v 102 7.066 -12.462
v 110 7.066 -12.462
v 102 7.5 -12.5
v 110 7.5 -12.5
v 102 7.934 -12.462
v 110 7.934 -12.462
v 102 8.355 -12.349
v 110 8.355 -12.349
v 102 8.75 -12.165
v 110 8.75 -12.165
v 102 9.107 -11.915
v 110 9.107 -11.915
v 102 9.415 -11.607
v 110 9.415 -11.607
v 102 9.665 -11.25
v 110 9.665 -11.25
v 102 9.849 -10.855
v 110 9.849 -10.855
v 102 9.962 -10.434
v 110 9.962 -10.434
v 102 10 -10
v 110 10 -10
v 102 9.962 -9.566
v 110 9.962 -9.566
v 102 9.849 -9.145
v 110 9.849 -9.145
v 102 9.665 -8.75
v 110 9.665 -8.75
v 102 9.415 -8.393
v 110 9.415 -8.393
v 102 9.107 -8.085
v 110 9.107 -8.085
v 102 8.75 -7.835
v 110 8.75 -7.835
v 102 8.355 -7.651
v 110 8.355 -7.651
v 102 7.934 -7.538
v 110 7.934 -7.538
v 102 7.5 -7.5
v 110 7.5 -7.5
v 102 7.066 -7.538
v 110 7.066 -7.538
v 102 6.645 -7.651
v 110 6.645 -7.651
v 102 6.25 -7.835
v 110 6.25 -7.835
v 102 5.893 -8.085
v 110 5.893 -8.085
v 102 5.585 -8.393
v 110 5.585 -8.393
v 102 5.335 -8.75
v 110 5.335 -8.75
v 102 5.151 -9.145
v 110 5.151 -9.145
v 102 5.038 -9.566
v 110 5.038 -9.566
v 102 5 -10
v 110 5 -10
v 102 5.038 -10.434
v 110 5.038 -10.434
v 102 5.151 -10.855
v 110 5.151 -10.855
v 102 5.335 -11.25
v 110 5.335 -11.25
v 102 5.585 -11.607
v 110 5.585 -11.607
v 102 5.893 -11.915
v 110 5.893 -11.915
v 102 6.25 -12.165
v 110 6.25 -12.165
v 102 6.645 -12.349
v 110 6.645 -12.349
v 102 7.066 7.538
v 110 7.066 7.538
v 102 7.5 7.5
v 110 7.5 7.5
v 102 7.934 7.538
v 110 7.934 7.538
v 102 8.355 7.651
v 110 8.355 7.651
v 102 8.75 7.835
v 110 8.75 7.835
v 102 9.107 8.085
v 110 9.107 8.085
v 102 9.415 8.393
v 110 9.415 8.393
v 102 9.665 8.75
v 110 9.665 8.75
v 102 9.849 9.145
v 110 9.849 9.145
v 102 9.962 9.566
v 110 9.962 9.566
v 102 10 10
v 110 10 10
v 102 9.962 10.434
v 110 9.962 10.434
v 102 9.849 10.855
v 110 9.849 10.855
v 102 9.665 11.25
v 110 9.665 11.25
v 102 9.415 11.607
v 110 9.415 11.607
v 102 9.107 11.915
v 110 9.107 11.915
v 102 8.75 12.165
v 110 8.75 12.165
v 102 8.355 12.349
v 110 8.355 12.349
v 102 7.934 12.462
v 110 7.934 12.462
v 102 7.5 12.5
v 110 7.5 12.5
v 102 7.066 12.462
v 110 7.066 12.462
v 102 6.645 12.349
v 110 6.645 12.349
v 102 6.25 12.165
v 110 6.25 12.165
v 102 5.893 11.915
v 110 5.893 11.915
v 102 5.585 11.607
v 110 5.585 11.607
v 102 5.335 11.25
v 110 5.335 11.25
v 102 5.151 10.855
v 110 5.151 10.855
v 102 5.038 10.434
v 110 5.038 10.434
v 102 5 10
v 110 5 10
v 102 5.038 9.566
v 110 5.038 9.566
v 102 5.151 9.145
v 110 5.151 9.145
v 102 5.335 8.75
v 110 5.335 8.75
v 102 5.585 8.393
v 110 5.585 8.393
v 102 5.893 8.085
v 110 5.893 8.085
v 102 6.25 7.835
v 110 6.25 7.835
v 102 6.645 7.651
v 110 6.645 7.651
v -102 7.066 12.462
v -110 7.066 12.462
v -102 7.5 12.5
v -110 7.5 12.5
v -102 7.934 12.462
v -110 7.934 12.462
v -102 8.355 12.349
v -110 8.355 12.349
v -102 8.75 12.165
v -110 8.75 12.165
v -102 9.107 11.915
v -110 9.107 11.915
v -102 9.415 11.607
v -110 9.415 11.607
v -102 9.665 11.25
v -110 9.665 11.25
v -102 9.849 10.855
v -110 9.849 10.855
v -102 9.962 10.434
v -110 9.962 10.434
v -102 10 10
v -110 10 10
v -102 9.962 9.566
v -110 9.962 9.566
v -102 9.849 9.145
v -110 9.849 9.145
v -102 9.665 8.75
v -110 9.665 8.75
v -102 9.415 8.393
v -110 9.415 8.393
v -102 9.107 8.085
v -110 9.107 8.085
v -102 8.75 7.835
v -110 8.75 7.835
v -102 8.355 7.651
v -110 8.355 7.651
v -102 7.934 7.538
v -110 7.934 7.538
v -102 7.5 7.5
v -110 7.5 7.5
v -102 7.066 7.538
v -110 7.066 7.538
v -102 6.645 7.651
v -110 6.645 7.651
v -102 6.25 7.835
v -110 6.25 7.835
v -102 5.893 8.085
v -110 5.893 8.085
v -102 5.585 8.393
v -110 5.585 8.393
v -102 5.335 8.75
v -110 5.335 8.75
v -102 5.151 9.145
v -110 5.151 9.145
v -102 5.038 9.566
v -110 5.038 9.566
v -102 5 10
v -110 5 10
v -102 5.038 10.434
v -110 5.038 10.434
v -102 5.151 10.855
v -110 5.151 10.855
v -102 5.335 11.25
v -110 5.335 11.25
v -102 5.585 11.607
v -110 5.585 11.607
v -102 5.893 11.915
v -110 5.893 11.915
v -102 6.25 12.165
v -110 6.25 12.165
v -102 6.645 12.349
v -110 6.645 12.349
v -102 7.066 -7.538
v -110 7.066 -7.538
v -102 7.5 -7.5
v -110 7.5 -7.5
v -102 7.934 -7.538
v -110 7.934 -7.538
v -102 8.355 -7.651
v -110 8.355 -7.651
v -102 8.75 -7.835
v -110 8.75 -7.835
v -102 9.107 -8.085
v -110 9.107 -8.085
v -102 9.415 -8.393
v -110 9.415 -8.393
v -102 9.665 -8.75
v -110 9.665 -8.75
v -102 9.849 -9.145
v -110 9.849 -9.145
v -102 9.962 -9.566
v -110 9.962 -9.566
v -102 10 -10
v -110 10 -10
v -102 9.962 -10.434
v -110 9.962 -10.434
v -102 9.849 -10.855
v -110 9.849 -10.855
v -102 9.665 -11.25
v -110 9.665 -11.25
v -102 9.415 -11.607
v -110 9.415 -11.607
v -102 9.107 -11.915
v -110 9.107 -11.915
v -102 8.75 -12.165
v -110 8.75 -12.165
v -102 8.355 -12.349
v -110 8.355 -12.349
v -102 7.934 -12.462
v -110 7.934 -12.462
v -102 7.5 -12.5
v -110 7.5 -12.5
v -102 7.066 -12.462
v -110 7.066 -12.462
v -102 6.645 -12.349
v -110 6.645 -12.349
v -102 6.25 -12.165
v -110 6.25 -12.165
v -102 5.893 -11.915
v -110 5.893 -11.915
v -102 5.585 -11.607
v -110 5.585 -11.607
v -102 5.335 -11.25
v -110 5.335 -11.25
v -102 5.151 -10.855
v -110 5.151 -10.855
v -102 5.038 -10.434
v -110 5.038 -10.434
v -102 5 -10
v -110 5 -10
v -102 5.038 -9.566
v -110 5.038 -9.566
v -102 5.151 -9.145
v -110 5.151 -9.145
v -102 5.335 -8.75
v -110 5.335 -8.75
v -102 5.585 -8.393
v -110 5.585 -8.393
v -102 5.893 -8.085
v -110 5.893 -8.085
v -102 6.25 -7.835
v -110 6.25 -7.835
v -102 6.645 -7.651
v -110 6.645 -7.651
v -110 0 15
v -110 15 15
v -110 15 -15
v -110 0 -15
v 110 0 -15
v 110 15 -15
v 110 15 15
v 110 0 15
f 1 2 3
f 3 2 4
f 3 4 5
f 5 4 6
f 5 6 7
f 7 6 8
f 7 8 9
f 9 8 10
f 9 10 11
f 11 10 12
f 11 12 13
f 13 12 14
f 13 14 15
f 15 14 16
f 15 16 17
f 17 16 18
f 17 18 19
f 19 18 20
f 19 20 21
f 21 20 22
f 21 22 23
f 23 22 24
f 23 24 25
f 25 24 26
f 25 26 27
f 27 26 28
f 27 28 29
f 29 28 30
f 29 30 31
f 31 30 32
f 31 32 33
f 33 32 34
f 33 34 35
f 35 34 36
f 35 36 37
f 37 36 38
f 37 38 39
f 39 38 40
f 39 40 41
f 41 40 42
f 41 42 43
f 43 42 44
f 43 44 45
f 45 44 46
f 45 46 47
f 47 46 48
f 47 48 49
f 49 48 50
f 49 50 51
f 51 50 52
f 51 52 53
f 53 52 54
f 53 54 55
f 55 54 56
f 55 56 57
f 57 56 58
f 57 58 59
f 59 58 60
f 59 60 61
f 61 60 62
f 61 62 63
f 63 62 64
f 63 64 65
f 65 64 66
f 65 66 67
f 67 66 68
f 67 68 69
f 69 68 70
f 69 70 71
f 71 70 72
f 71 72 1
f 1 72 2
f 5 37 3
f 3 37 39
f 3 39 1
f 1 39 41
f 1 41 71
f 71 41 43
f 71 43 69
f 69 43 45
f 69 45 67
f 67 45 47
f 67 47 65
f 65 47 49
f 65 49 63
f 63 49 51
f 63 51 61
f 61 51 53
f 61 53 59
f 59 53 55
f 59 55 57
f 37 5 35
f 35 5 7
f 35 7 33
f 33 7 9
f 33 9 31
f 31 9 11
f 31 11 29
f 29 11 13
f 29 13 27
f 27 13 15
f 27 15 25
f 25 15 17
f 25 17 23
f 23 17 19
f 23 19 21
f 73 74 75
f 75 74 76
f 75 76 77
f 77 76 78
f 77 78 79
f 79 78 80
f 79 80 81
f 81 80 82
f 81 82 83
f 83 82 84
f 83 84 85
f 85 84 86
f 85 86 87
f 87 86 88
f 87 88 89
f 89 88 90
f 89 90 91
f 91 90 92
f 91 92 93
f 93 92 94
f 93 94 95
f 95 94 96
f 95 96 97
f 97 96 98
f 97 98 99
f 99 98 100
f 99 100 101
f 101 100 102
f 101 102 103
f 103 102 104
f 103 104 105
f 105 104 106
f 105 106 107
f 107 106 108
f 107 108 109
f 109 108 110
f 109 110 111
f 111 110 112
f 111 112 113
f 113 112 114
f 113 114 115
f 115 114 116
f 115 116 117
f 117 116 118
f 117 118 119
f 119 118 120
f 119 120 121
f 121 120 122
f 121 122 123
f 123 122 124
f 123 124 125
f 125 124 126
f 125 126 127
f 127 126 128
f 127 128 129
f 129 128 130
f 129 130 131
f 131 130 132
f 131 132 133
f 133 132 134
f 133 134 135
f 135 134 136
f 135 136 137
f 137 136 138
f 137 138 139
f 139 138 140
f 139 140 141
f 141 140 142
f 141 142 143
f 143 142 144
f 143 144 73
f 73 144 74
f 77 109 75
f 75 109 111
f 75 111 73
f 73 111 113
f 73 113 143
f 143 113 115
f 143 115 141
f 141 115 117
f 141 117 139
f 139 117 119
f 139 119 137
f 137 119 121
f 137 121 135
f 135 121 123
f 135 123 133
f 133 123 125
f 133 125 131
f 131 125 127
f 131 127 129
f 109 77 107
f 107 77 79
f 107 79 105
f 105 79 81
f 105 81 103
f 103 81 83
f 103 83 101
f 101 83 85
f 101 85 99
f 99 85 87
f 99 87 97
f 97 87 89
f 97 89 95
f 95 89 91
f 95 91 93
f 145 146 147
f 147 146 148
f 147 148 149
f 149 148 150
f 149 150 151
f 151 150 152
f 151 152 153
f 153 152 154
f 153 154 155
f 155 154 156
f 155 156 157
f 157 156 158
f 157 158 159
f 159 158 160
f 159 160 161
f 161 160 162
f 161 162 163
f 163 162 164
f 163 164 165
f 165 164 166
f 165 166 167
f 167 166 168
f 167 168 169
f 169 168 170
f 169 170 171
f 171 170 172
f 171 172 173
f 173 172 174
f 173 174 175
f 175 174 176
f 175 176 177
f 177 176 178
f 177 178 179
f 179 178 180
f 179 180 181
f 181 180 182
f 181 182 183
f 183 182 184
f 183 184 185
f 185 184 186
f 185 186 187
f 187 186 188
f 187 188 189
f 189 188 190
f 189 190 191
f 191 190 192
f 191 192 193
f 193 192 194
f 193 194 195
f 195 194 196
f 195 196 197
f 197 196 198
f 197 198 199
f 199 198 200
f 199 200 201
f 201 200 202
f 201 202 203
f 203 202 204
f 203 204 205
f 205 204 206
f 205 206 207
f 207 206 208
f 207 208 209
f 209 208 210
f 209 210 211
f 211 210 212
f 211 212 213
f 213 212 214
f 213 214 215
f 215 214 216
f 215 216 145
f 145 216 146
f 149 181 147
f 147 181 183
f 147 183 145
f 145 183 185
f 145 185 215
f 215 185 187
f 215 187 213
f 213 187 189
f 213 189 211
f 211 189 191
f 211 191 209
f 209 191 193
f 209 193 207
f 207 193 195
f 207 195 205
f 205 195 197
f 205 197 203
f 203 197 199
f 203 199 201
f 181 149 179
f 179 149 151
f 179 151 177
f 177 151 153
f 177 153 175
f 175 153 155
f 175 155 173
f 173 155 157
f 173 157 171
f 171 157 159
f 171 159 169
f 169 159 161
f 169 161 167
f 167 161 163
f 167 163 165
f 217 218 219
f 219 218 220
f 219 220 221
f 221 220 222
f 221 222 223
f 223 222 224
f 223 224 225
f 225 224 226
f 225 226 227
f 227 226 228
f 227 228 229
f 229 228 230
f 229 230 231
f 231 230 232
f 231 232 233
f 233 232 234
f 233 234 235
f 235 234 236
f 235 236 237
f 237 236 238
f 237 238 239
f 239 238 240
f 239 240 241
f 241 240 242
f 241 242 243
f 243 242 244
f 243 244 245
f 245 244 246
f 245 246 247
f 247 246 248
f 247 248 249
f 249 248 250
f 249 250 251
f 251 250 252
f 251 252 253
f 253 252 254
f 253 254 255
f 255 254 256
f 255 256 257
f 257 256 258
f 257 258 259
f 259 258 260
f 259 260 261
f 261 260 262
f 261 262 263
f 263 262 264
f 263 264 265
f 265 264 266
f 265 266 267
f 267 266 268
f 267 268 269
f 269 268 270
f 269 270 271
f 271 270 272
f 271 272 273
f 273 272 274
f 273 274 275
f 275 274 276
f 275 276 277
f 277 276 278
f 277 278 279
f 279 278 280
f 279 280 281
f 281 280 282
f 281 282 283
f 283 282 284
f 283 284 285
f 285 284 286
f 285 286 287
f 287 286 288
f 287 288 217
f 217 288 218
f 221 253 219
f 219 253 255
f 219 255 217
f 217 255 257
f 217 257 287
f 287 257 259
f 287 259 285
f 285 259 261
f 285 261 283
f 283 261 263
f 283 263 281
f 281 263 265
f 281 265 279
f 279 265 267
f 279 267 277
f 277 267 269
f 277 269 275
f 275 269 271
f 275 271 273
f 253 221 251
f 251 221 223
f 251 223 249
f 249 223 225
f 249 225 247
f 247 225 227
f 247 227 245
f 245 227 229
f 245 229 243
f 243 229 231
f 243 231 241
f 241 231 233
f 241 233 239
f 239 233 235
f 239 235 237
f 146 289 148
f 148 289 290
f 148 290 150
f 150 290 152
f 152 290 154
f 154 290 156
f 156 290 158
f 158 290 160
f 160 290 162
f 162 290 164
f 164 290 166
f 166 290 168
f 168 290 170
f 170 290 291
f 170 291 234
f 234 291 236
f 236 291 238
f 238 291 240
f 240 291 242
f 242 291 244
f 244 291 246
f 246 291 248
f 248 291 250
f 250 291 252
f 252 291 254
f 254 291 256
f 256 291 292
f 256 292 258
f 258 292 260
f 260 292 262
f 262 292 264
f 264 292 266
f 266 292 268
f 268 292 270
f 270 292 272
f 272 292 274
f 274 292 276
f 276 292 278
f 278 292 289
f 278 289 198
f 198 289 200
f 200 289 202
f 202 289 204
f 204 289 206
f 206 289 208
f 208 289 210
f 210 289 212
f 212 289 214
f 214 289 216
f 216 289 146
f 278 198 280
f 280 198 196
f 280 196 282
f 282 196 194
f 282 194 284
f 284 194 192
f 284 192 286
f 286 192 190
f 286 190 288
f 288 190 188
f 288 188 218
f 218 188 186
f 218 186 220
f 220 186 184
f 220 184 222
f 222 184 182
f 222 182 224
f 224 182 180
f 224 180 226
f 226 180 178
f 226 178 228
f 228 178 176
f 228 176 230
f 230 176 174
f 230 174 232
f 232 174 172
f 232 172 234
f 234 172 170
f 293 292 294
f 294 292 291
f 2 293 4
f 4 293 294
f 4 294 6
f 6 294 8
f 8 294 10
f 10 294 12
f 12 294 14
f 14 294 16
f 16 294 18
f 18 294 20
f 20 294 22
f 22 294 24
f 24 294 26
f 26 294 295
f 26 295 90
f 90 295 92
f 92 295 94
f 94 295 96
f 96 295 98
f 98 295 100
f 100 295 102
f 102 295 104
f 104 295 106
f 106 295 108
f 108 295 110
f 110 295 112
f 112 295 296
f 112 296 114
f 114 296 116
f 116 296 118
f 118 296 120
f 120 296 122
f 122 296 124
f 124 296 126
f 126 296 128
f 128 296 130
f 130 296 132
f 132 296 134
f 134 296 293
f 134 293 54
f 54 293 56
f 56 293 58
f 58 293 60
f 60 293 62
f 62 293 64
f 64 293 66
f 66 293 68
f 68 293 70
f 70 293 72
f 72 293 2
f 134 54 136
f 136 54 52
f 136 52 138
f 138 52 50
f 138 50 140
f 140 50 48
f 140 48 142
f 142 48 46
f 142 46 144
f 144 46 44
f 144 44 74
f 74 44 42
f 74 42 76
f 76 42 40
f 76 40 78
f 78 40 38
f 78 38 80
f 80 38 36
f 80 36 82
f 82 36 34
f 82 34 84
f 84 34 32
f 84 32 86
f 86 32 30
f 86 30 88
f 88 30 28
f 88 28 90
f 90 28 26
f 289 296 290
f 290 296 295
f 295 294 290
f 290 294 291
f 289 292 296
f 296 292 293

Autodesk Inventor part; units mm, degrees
ref_plane "YZ Plane" through (0, 0, 0) normal (1, 0, 0) x (0, 1, 0)
ref_plane "XZ Plane" through (0, 0, 0) normal (0, 1, 0) x (-1, 0, 0)
ref_plane "XY Plane" through (0, 0, 0) normal (0, 0, 1) x (1, 0, 0)
sketch "Sketch1" plane through (0, 0, 0) normal (0, 1, 0) x (-1, 0, 0)
  line L0 (110, -15) -> (-110, -15)
  line L1 (-110, -15) -> (-110, 15)
  line L2 (-110, 15) -> (110, 15)
  line L3 (110, 15) -> (110, -15)
  line L4 (110, 0) -> (-110, 0) construction
  line L5 (0, -15) -> (0, 15) construction
  point P0 (0, 0)
  point P1 (0, 0)
  dimension "d0" = 220
  dimension "d1" = 30
extrude "Extrusion1" add sketch "Sketch1" along normal blind 15
sketch "Sketch2" plane through (-110, 0, -15) normal (-1, 0, 0) x (0, 0, 1)
  circle A0 centre (5, 7.5) radius 2.5
  line L0 (0, 0) -> (0, 15) construction
  line L1 (0, 7.5) -> (30, 7.5) construction
  line L2 (30, 0) -> (30, 15) construction
  line L3 (15, 0) -> (15, 15) construction
  line L4 (30, 15) -> (0, 15) construction
  circle A1 centre (25, 7.5) radius 2.5
  dimension "d4" = 5
  dimension "d5" = 20
extrude "Extrusion2" cut sketch "Sketch2" against normal blind 8
sketch "Sketch3" plane through (110, 0, 15) normal (1, 0, 0) x (0, 0, -1)
  circle A0 centre (25, 7.5) radius 2.5 projected
  circle A1 centre (5, 7.5) radius 2.5 projected
  point P0 (15, 0)
extrude "Extrusion3" cut sketch "Sketch3" against normal blind 8
properties part number "aux_strut"
